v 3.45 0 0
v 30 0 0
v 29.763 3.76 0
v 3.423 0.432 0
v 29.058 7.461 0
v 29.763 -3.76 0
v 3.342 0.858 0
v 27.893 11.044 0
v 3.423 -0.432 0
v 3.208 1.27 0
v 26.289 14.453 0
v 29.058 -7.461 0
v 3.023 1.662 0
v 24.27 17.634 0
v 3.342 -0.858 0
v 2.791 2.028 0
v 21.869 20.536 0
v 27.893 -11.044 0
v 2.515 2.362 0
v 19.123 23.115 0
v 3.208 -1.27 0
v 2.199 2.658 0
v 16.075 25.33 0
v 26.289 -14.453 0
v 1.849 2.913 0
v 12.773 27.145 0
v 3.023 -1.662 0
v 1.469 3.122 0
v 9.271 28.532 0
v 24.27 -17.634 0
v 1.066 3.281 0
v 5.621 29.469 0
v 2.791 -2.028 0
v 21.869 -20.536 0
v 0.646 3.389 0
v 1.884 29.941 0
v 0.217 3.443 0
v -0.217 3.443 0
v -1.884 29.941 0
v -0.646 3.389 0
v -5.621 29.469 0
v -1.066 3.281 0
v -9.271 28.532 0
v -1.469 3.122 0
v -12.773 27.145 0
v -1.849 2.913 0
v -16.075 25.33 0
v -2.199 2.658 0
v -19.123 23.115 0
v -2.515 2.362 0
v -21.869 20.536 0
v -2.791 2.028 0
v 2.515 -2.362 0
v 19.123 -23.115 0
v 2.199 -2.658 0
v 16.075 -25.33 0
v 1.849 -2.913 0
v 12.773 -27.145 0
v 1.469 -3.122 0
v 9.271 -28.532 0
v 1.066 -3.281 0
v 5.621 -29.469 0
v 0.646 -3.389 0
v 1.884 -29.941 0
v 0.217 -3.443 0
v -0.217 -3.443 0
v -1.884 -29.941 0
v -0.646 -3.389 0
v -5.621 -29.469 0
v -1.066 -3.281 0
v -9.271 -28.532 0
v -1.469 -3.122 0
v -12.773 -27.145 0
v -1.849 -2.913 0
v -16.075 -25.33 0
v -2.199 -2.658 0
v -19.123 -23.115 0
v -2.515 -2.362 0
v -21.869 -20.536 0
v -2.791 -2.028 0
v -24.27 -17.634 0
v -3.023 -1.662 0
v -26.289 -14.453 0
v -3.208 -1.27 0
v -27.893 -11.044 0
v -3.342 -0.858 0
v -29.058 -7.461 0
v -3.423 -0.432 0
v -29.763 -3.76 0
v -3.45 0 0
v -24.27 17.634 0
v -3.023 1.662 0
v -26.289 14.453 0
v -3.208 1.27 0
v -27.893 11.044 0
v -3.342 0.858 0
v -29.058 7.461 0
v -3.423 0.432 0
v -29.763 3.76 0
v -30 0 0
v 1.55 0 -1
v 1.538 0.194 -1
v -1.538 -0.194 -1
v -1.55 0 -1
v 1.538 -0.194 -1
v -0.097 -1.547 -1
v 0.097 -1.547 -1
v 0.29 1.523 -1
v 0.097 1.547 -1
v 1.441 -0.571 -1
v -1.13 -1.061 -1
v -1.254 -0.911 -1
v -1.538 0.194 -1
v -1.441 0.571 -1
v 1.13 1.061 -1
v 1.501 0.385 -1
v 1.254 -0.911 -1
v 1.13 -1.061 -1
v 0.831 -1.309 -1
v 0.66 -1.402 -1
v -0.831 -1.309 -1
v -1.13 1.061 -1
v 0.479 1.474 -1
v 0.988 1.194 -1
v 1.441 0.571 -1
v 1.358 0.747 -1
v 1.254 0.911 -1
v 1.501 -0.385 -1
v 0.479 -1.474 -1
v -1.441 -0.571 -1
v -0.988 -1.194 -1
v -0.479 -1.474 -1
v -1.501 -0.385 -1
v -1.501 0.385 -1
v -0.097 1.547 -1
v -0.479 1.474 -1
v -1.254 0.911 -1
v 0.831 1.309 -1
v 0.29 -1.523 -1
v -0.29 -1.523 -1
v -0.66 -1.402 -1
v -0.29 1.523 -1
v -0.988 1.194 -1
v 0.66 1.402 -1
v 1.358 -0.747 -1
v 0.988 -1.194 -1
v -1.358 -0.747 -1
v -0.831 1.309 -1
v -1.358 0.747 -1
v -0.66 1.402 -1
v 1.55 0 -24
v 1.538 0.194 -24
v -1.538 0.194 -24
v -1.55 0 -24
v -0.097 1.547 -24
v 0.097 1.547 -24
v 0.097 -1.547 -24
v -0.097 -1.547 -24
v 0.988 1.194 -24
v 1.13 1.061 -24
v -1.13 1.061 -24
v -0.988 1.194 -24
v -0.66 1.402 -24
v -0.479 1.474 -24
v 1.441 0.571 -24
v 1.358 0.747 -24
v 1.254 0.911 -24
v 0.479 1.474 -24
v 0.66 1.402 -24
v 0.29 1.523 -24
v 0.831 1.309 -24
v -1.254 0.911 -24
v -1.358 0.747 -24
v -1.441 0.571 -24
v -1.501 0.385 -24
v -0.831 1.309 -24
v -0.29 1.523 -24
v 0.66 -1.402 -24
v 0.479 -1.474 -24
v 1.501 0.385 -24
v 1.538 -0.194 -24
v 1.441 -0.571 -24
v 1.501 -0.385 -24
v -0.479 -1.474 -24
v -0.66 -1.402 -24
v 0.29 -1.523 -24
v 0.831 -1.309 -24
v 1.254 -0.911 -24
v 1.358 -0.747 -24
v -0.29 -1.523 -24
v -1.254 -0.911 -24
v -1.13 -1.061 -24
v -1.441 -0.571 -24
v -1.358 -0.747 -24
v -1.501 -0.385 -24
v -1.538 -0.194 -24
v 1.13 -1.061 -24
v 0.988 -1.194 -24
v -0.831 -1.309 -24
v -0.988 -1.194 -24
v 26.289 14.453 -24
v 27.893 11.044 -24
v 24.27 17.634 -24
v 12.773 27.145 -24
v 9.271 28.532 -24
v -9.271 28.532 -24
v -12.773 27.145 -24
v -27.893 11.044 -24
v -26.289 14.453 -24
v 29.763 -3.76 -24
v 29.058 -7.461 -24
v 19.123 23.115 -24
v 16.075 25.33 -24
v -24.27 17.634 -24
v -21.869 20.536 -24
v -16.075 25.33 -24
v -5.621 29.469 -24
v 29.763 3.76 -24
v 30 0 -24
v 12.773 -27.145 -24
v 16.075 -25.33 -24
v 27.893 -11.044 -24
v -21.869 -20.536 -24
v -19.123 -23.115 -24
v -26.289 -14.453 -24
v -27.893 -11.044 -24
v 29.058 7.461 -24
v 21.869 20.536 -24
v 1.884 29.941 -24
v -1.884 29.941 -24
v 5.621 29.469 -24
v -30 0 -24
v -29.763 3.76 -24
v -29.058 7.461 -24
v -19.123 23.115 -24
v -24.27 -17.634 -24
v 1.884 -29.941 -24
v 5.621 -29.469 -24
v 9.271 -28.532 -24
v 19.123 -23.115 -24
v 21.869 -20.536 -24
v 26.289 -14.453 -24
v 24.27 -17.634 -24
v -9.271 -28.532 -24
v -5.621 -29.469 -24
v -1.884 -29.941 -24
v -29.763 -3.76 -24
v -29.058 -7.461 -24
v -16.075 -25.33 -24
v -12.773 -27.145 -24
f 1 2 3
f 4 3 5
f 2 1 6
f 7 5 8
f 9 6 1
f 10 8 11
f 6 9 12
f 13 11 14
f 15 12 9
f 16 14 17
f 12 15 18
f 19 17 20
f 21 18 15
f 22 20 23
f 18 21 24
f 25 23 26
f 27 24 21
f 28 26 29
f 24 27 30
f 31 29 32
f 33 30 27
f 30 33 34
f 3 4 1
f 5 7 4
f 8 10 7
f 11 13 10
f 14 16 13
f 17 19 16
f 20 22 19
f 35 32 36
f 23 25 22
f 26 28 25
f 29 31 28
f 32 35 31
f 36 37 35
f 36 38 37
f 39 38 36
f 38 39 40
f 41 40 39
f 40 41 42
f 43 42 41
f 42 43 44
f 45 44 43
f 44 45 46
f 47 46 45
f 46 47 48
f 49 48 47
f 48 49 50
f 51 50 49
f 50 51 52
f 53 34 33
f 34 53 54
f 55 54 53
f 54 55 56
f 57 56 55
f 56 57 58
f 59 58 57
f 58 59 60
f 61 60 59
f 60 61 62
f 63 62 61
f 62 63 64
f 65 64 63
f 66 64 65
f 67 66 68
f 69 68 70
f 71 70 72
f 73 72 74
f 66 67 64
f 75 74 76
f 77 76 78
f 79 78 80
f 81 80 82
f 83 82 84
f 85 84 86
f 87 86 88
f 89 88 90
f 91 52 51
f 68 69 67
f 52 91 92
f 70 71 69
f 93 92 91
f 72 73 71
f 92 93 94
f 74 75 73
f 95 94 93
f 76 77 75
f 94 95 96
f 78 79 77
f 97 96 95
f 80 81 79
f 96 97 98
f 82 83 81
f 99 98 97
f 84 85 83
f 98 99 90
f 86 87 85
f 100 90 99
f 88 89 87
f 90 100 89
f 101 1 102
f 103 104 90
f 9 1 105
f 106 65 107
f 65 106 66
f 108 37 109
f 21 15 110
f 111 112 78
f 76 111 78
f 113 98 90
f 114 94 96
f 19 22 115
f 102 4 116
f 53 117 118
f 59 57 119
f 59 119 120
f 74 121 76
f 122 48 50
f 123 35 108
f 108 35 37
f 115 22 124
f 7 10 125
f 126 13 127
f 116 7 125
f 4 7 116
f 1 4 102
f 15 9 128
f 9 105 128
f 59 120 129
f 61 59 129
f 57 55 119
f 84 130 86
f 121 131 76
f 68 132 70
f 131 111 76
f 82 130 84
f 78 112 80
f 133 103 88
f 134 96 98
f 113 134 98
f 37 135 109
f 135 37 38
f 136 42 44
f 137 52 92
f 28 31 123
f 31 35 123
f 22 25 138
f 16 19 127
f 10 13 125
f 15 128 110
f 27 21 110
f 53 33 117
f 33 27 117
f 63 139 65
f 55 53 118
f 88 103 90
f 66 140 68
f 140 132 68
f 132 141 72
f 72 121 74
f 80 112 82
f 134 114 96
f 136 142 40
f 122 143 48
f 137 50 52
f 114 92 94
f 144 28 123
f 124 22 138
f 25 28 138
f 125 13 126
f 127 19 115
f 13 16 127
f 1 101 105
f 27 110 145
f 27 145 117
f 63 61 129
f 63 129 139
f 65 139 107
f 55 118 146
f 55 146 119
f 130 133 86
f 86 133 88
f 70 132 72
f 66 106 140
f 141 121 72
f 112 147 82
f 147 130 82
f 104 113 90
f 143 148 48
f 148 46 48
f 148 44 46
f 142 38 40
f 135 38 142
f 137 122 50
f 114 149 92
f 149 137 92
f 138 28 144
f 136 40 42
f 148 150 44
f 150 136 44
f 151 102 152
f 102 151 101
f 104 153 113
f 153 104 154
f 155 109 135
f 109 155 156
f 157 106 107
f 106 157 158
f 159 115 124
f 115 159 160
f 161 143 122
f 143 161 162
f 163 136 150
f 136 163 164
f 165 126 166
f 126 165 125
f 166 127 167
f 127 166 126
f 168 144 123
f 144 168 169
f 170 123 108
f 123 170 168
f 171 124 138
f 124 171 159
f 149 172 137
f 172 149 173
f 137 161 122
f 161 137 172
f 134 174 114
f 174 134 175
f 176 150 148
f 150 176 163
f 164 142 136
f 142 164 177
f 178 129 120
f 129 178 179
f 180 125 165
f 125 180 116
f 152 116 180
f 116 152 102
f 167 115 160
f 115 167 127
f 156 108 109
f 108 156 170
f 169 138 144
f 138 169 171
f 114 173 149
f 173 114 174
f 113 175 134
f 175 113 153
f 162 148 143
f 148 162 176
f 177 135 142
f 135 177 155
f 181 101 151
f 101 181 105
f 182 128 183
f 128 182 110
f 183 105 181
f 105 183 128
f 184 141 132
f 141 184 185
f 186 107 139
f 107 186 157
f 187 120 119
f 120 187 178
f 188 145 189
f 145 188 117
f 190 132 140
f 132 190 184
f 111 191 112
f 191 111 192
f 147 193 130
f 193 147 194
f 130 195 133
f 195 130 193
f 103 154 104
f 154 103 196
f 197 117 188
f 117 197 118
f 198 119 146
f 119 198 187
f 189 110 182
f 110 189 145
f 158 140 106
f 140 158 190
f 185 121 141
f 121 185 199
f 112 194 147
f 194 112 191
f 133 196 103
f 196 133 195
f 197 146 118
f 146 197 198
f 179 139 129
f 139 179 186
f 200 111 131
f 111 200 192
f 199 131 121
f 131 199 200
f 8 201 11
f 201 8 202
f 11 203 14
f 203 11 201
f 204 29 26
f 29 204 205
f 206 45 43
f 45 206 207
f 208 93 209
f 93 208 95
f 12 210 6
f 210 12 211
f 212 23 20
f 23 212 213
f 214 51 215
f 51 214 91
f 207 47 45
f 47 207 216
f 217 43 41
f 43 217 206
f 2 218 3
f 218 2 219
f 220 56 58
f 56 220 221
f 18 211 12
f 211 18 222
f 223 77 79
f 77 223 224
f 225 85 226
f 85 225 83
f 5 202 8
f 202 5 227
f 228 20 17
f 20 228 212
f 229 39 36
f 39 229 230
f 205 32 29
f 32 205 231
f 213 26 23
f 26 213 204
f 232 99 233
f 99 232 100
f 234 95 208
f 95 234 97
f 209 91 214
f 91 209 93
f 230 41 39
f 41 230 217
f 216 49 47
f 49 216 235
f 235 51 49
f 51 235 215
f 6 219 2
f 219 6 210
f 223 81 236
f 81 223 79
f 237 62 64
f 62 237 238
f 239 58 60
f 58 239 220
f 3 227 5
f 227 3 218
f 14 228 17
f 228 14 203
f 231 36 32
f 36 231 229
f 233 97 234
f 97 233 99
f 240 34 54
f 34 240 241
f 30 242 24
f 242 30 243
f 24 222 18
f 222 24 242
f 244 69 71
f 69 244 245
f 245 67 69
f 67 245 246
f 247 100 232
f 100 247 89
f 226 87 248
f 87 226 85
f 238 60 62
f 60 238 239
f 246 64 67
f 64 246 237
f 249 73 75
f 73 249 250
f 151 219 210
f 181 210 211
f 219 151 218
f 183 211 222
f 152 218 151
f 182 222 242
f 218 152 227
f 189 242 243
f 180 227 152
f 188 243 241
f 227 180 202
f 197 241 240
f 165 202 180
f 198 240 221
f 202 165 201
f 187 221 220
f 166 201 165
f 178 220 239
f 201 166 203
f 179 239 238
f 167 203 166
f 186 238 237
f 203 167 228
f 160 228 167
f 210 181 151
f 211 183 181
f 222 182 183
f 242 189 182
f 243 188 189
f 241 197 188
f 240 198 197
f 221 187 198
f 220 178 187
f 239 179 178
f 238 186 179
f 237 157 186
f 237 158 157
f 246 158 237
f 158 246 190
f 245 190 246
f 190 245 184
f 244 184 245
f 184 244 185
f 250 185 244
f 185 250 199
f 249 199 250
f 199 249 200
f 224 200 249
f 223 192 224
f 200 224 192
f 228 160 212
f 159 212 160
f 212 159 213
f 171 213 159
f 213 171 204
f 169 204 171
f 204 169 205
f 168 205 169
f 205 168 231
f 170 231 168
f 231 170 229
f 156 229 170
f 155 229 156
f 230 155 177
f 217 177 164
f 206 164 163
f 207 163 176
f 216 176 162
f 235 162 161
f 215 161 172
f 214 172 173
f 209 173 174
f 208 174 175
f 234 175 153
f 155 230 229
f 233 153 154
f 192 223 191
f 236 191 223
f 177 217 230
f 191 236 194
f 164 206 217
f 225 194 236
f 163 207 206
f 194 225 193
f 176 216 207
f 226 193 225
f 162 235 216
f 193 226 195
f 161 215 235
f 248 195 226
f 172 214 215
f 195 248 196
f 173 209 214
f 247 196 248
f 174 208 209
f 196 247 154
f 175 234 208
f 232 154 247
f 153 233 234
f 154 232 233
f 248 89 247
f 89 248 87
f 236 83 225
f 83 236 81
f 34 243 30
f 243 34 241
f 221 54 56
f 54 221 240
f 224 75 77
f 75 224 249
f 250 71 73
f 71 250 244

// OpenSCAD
$fn = 50;


difference() {
	union() {
		translate(v = [0, 0, -24.0000000000]) {
			cylinder(h = 24, r = 30.0000000000);
		}
	}
	union() {
		translate(v = [0, 0, 0]) {
			rotate(a = [0, 0, 0]) {
				difference() {
					union() {
						translate(v = [0, 0, -27.0000000000]) {
							cylinder(h = 27, r = 1.2500000000);
						}
						translate(v = [0, 0, -1.0000000000]) {
							cylinder(h = 1.0000000000, r1 = 1.5500000000, r2 = 3.4500000000);
						}
						translate(v = [0, 0, -27.0000000000]) {
							cylinder(h = 27, r = 1.5500000000);
						}
						translate(v = [0, 0, -27.0000000000]) {
							cylinder(h = 27, r = 1.2500000000);
						}
					}
					union();
				}
			}
		}
	}
}
